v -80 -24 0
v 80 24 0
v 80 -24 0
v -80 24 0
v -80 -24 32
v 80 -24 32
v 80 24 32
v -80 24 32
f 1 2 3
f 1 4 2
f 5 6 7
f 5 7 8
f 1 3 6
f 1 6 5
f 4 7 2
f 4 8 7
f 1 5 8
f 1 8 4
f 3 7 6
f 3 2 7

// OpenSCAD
// Gemini 4 Argon Parametric OpenSCAD — PRT-03: Lower Canvas Ledge & Brush Rest Tray
$fn = 64;
translate([-80.00, -24.00, 0])
  cube([160, 48, 32]);
